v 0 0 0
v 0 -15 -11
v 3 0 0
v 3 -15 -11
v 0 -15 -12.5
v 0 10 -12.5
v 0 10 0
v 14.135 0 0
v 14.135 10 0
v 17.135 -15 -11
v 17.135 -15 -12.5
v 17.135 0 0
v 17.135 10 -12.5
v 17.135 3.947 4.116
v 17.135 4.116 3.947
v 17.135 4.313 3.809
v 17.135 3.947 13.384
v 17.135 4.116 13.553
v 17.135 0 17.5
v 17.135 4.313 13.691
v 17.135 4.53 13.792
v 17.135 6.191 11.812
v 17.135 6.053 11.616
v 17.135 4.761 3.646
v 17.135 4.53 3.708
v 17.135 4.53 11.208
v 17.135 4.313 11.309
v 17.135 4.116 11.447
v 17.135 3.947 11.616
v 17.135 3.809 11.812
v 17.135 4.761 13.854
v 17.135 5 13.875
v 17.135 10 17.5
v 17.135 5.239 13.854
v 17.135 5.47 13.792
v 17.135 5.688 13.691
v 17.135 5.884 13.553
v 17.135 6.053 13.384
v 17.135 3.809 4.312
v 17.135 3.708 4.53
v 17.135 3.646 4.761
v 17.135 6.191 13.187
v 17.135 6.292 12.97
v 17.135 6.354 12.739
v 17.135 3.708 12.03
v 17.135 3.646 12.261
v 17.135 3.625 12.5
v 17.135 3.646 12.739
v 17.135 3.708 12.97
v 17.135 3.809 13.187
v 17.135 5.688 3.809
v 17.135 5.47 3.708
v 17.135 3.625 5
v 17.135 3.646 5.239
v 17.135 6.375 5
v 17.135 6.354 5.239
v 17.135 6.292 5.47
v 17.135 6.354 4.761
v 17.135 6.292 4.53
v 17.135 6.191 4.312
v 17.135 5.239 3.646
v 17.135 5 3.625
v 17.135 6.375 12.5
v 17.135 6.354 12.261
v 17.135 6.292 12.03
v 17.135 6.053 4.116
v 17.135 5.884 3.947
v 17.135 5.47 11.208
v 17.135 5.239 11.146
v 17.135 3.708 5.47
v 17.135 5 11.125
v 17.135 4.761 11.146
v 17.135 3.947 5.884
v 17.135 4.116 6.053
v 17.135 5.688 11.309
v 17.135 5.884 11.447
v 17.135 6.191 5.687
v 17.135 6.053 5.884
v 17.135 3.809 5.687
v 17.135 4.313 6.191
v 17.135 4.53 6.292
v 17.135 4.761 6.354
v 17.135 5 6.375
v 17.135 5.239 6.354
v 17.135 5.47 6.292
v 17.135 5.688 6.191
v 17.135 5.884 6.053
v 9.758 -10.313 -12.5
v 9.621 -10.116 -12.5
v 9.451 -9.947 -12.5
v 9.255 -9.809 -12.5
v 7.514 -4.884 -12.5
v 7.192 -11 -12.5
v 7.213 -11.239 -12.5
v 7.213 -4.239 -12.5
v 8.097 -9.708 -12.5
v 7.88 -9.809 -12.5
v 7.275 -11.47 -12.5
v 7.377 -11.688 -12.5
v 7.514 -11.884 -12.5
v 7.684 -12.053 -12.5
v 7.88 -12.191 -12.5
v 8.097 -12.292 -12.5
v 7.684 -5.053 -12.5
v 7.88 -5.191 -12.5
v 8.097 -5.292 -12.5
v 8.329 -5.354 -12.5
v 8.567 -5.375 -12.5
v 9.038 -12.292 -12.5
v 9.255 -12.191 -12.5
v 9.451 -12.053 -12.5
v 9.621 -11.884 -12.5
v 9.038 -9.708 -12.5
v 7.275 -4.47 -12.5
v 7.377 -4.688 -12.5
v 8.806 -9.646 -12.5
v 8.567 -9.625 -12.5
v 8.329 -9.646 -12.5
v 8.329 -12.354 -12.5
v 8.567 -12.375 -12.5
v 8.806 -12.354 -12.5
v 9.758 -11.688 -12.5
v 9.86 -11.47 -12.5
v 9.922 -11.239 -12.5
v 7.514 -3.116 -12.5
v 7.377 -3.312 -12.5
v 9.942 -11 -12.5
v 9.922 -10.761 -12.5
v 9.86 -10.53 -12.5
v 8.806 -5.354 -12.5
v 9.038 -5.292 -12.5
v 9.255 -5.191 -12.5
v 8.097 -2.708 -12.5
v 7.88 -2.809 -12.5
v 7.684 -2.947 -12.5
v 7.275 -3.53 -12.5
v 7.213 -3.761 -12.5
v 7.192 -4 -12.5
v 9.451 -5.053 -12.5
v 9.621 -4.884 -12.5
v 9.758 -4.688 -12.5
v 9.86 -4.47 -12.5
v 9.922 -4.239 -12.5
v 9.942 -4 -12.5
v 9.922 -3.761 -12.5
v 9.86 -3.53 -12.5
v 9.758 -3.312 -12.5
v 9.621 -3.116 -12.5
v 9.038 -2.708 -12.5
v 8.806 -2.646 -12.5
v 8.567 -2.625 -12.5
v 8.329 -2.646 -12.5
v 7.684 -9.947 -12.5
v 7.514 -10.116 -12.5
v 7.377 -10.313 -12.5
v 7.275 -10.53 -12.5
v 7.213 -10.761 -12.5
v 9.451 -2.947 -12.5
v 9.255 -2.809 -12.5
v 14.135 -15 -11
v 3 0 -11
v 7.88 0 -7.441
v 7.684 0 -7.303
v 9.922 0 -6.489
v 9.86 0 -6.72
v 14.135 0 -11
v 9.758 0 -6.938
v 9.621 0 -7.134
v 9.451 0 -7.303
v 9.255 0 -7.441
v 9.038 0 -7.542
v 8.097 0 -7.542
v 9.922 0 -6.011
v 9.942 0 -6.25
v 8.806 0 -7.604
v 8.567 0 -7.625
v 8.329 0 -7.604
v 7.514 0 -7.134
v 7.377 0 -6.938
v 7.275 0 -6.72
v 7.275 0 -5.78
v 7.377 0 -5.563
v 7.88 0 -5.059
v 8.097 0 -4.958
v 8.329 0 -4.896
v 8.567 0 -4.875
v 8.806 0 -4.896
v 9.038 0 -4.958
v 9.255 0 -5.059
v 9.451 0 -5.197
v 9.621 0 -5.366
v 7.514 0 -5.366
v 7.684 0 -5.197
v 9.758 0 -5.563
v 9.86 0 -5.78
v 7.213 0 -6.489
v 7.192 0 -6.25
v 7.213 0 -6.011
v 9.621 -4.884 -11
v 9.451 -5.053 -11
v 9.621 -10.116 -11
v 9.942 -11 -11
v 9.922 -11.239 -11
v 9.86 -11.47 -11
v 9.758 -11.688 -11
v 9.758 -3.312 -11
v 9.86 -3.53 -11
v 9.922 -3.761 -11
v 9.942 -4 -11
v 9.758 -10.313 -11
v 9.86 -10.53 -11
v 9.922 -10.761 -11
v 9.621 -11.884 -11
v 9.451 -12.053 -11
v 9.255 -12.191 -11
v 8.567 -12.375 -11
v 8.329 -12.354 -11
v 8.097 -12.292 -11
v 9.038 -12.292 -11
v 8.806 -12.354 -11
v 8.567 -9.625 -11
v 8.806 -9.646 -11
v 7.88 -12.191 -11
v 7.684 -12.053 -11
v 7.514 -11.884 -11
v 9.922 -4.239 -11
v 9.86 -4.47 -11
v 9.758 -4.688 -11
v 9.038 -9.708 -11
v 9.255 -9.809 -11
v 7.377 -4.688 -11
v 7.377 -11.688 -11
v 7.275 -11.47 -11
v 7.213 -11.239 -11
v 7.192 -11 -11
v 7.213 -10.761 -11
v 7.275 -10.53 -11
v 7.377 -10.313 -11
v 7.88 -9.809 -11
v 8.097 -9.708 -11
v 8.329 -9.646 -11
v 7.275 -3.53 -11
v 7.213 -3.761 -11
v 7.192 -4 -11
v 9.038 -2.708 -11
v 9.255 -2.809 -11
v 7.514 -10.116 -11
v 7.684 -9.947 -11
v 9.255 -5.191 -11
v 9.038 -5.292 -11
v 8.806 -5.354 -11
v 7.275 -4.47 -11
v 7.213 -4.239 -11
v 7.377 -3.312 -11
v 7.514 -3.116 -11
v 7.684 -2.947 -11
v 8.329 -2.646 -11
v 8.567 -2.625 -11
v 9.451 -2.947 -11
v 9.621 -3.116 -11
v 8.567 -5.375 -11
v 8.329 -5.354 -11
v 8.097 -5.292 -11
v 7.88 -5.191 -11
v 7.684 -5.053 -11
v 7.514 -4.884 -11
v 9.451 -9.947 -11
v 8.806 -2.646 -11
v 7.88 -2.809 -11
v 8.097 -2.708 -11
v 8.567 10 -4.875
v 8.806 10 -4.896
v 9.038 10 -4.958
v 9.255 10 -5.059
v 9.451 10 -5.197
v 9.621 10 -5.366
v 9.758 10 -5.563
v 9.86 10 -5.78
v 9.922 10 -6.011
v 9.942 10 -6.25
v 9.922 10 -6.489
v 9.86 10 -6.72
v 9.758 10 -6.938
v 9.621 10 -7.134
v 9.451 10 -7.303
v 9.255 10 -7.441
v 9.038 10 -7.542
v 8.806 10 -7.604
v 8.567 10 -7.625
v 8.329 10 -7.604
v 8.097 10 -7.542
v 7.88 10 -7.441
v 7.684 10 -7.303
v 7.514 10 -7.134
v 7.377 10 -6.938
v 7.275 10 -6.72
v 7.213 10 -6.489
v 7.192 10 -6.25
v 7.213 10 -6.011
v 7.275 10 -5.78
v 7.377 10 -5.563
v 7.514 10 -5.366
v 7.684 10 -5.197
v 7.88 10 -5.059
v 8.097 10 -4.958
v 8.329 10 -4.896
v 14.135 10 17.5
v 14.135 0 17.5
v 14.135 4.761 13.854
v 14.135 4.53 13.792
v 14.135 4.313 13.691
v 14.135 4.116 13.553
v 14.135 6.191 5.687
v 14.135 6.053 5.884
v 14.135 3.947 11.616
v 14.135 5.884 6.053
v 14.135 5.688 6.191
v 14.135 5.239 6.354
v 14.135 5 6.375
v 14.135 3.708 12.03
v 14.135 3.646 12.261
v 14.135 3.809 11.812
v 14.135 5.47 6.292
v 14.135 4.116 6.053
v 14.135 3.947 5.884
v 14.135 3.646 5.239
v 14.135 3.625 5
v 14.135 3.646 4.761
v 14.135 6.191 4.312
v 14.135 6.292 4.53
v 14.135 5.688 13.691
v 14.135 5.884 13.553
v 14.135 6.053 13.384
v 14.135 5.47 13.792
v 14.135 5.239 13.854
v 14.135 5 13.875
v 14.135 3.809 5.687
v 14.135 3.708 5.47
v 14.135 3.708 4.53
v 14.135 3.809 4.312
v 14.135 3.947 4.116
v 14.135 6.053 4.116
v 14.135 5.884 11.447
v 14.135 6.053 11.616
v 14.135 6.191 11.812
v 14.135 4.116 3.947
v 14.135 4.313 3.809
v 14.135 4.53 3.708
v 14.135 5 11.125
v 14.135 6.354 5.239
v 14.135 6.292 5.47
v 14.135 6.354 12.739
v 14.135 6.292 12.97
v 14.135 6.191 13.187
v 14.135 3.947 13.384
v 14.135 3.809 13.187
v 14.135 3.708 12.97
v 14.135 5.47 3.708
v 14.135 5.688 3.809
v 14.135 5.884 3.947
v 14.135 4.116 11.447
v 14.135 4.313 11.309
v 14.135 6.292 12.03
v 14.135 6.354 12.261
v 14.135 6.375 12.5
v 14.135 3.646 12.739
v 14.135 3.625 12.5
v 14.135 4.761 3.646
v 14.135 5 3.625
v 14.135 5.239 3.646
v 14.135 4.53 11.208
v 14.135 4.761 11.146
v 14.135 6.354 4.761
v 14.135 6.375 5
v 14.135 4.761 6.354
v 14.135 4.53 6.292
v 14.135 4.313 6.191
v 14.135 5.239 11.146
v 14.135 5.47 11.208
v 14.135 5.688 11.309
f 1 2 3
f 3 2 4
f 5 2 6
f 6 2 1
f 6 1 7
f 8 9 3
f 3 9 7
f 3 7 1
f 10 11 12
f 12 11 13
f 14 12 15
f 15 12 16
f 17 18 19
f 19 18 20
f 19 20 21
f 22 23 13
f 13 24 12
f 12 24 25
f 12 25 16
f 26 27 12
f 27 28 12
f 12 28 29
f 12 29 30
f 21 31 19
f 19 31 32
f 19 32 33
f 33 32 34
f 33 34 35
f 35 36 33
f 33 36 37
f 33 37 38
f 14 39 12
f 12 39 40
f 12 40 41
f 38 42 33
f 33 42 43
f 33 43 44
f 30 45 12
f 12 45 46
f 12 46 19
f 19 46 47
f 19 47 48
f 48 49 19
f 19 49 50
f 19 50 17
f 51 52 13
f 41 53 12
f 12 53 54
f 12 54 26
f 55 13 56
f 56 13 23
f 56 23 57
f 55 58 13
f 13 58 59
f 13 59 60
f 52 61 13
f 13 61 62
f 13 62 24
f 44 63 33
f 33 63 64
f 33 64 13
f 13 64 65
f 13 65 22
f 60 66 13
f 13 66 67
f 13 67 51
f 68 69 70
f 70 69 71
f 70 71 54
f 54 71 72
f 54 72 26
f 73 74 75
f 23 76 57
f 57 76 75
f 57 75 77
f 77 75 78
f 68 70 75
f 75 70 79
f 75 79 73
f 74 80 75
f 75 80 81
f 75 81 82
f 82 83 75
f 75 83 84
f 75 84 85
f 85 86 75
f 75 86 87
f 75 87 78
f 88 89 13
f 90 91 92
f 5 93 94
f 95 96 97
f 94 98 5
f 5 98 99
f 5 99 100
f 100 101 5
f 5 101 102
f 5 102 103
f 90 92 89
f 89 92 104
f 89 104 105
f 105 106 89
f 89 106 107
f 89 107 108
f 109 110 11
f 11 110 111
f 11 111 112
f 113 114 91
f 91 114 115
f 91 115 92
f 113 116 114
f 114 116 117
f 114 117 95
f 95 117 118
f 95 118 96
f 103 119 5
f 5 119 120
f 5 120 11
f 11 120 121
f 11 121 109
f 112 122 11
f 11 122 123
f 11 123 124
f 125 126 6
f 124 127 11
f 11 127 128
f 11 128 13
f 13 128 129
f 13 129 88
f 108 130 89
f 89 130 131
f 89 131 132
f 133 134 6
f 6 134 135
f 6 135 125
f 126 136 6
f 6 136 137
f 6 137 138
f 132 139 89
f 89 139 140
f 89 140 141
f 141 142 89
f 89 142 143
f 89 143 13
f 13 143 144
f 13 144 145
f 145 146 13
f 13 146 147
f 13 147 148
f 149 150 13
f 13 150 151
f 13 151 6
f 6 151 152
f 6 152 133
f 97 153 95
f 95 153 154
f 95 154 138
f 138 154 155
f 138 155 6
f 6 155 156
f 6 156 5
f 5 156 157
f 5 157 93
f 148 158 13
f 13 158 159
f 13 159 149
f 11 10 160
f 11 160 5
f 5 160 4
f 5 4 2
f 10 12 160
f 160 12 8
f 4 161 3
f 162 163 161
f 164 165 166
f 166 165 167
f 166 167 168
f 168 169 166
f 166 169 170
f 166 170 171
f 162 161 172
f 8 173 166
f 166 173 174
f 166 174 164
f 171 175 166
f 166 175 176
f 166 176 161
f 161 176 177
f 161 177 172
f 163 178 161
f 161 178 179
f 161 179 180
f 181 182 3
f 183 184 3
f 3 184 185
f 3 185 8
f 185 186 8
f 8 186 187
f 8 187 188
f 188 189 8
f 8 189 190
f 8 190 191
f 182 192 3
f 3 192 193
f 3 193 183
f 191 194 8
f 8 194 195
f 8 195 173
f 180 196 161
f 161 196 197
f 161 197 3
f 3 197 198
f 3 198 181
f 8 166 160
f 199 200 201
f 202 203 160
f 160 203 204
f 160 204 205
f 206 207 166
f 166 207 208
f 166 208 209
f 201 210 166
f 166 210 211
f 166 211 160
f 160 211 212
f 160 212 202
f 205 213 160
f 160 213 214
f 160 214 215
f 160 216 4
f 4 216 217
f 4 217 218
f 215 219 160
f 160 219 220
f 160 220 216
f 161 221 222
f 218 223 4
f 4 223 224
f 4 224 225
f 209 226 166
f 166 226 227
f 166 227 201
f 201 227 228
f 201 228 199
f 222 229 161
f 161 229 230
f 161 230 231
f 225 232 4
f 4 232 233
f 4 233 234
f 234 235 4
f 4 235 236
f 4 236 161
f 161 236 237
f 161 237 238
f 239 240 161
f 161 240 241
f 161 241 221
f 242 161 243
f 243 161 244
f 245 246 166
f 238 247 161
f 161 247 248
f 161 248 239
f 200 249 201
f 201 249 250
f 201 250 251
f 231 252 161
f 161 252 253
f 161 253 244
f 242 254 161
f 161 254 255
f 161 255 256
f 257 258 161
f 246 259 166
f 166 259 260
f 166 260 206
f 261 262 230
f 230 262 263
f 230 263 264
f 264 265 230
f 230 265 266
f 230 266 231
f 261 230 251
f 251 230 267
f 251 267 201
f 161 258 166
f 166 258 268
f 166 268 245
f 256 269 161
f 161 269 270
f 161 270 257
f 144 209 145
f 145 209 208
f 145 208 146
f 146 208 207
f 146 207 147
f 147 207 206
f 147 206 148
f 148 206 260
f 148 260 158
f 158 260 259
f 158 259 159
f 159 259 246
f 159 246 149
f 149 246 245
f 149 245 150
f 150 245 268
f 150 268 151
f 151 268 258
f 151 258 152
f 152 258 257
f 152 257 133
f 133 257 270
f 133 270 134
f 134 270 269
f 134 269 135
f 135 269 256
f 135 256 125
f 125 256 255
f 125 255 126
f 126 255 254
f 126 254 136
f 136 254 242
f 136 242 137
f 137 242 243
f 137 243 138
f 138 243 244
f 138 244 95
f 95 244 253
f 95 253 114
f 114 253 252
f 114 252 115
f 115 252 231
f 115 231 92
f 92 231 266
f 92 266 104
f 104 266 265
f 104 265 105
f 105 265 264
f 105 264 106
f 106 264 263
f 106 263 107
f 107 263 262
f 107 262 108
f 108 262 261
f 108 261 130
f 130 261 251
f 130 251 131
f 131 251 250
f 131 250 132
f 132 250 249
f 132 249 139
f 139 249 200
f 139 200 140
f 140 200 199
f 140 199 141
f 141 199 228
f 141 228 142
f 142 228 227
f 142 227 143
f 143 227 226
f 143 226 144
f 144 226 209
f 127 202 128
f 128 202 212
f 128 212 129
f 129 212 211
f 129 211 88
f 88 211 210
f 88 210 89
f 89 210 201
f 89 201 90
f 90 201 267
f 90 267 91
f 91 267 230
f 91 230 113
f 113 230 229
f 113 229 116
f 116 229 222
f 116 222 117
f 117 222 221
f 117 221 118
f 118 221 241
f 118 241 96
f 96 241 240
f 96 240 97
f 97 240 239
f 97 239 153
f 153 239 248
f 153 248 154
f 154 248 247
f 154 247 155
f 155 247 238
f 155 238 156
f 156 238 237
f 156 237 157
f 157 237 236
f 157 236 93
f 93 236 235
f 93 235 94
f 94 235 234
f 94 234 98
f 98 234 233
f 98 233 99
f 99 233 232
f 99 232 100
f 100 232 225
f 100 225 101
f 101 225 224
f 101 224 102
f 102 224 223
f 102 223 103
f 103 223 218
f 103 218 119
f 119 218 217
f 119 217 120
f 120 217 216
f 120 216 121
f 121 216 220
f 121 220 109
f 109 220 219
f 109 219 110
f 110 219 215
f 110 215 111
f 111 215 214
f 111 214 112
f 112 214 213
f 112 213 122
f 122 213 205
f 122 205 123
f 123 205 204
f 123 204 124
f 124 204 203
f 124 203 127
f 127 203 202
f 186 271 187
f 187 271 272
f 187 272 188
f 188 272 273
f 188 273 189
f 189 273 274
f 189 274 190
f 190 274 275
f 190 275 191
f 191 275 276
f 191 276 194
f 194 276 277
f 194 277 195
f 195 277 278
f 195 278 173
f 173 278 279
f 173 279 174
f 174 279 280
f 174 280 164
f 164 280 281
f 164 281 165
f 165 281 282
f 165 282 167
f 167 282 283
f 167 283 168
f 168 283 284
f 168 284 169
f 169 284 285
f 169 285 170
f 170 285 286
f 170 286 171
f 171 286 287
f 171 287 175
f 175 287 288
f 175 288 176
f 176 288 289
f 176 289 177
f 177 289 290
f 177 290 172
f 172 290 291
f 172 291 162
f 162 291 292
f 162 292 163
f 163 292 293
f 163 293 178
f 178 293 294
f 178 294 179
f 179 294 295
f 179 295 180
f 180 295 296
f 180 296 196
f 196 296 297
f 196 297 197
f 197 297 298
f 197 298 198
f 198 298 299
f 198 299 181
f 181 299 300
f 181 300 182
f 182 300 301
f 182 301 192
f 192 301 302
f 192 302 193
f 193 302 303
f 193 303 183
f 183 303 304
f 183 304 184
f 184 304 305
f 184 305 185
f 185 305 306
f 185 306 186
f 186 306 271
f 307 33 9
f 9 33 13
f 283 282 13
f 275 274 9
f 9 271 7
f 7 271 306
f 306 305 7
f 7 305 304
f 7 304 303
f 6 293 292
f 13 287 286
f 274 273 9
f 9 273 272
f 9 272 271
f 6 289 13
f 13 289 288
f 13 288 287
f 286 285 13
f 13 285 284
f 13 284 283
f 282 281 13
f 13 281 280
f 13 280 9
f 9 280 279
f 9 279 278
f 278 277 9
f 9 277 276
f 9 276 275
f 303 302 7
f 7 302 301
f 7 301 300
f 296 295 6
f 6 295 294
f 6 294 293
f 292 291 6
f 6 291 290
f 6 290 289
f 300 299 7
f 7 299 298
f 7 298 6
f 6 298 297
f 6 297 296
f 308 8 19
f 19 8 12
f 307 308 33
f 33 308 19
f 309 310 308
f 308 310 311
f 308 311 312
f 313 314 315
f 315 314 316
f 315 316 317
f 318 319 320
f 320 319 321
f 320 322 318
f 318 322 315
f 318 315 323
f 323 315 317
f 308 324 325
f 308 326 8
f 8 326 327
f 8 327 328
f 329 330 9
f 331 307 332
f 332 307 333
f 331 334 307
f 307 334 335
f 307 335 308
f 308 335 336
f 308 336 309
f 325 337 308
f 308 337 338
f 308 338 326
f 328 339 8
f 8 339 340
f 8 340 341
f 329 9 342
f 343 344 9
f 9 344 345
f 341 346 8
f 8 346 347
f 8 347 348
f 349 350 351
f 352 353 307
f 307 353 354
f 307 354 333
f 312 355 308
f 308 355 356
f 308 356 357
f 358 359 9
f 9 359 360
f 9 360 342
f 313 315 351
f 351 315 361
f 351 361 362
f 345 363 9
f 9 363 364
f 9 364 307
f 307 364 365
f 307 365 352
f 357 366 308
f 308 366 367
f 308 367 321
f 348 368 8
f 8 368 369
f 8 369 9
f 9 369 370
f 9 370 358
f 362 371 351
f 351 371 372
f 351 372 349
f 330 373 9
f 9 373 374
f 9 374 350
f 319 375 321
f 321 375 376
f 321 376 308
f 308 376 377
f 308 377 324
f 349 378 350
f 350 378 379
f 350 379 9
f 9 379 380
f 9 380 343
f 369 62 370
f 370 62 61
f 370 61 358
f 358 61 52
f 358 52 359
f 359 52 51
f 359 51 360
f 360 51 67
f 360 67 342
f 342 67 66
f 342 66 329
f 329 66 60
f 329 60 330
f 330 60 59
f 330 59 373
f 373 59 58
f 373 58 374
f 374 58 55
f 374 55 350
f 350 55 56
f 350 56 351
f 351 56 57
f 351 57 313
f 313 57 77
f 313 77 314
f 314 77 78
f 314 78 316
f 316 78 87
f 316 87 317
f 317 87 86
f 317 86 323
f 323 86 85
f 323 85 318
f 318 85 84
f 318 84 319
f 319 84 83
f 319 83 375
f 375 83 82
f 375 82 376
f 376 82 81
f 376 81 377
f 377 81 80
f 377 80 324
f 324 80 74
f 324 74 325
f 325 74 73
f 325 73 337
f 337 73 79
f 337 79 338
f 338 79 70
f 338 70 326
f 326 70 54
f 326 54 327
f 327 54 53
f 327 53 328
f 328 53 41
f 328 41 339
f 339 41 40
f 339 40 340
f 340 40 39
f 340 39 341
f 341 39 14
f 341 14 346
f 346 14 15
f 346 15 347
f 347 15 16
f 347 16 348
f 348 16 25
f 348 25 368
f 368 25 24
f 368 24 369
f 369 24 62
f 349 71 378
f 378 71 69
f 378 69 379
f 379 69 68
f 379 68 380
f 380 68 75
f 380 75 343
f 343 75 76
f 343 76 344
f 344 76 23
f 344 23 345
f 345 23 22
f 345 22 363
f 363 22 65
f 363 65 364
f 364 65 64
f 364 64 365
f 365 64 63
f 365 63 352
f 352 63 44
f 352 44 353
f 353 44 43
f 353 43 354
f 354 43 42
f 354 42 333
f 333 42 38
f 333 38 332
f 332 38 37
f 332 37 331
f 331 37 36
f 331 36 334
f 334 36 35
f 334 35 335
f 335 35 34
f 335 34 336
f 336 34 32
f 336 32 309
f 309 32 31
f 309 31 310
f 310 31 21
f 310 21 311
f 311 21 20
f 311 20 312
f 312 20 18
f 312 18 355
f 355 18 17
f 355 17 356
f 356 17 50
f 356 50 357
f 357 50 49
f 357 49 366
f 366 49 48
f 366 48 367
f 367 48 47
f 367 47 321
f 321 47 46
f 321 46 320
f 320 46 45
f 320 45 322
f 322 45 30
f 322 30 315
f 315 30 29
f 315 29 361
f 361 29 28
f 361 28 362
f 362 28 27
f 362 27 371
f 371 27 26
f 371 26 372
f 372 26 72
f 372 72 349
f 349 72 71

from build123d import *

# Parameters (mm, degrees)
SKETCH1_W           = 17.135
SKETCH1_H           = 12.5
BASE_DEPTH          = 5
SKETCH2_W           = 17.135
SKETCH2_H           = 15
BOSS_EXTRUDE2_DEPTH = 1.5
BOSS_EXTRUDE3_DEPTH = 17.135
SKETCH4_W           = 11.135
SKETCH4_H           = 15
CUT_EXTRUDE1_DEPTH  = 11
SKETCH5_R           = 1.375
CUT_EXTRUDE2_DEPTH  = 2
SKETCH6_R           = 1.375
CUT_EXTRUDE3_DEPTH  = 5.75
SKETCH7_W           = 17.135
SKETCH7_H           = 12.5
SKETCH7_R           = 1.375
BOSS_EXTRUDE4_DEPTH = 5
SKETCH8_W           = 17.5
SKETCH8_H           = 10
SKETCH8_R           = 1.375
BOSS_EXTRUDE5_DEPTH = 3


with BuildPart() as part:
    # Sketch1 → base (new body)
    with BuildSketch(Plane(origin=(0, 0, 0), x_dir=(1, 0, 0), z_dir=(0, 1, 0))):
        with Locations((8.5675, 6.25)):
            Rectangle(SKETCH1_W, SKETCH1_H)
    extrude(amount=BASE_DEPTH)

    # Sketch2 → Boss-Extrude2 (add)
    with BuildSketch(Plane(origin=(0, 0, -12.5), x_dir=(-1, 0, 0), z_dir=(0, 0, -1))):
        with Locations((-8.5675, -7.5)):
            Rectangle(SKETCH2_W, SKETCH2_H)
    extrude(amount=-BOSS_EXTRUDE2_DEPTH)

    # Sketch3 → Boss-Extrude3 (add)
    with BuildSketch(Plane.ZY):
        Polygon((0, 0), (-11, -15), (-11, 0), align=None)
    extrude(amount=-BOSS_EXTRUDE3_DEPTH)

    # Sketch4 → Cut-Extrude1 (cut)
    with BuildSketch(Plane.XY):
        with Locations((8.5675, -7.5)):
            Rectangle(SKETCH4_W, SKETCH4_H)
    extrude(amount=-CUT_EXTRUDE1_DEPTH, mode=Mode.SUBTRACT)

    # Sketch5 → Cut-Extrude2 (cut)
    with BuildSketch(Plane.XY.offset(-11)):
        with Locations((8.5675, -4)):
            Circle(SKETCH5_R)
        with Locations((8.5675, -11)):
            Circle(SKETCH5_R)
    extrude(amount=-CUT_EXTRUDE2_DEPTH, mode=Mode.SUBTRACT)

    # Sketch6 → Cut-Extrude3 (cut)
    with BuildSketch(Plane(origin=(0, 5, 0), x_dir=(1, 0, 0), z_dir=(0, 1, 0))):
        with Locations((8.5675, 6.25)):
            Circle(SKETCH6_R)
    extrude(amount=-CUT_EXTRUDE3_DEPTH, mode=Mode.SUBTRACT)

    # Sketch7 → Boss-Extrude4 (add)
    with BuildSketch(Plane(origin=(0, 5, 0), x_dir=(1, 0, 0), z_dir=(0, 1, 0))):
        with Locations((8.5675, 6.25)):
            Rectangle(SKETCH7_W, SKETCH7_H)
        with Locations((8.5675, 6.25)):
            Circle(SKETCH7_R, mode=Mode.SUBTRACT)
    extrude(amount=BOSS_EXTRUDE4_DEPTH)

    # Sketch8 → Boss-Extrude5 (add)
    with BuildSketch(Plane(origin=(17.135, 0, 0), x_dir=(0, 0, -1), z_dir=(1, 0, 0))):
        with Locations((-8.75, 5)):
            Rectangle(SKETCH8_W, SKETCH8_H)
        with Locations((-5, 5)):
            Circle(SKETCH8_R, mode=Mode.SUBTRACT)
        with Locations((-12.5, 5)):
            Circle(SKETCH8_R, mode=Mode.SUBTRACT)
    extrude(amount=-BOSS_EXTRUDE5_DEPTH)


solid = part.part
